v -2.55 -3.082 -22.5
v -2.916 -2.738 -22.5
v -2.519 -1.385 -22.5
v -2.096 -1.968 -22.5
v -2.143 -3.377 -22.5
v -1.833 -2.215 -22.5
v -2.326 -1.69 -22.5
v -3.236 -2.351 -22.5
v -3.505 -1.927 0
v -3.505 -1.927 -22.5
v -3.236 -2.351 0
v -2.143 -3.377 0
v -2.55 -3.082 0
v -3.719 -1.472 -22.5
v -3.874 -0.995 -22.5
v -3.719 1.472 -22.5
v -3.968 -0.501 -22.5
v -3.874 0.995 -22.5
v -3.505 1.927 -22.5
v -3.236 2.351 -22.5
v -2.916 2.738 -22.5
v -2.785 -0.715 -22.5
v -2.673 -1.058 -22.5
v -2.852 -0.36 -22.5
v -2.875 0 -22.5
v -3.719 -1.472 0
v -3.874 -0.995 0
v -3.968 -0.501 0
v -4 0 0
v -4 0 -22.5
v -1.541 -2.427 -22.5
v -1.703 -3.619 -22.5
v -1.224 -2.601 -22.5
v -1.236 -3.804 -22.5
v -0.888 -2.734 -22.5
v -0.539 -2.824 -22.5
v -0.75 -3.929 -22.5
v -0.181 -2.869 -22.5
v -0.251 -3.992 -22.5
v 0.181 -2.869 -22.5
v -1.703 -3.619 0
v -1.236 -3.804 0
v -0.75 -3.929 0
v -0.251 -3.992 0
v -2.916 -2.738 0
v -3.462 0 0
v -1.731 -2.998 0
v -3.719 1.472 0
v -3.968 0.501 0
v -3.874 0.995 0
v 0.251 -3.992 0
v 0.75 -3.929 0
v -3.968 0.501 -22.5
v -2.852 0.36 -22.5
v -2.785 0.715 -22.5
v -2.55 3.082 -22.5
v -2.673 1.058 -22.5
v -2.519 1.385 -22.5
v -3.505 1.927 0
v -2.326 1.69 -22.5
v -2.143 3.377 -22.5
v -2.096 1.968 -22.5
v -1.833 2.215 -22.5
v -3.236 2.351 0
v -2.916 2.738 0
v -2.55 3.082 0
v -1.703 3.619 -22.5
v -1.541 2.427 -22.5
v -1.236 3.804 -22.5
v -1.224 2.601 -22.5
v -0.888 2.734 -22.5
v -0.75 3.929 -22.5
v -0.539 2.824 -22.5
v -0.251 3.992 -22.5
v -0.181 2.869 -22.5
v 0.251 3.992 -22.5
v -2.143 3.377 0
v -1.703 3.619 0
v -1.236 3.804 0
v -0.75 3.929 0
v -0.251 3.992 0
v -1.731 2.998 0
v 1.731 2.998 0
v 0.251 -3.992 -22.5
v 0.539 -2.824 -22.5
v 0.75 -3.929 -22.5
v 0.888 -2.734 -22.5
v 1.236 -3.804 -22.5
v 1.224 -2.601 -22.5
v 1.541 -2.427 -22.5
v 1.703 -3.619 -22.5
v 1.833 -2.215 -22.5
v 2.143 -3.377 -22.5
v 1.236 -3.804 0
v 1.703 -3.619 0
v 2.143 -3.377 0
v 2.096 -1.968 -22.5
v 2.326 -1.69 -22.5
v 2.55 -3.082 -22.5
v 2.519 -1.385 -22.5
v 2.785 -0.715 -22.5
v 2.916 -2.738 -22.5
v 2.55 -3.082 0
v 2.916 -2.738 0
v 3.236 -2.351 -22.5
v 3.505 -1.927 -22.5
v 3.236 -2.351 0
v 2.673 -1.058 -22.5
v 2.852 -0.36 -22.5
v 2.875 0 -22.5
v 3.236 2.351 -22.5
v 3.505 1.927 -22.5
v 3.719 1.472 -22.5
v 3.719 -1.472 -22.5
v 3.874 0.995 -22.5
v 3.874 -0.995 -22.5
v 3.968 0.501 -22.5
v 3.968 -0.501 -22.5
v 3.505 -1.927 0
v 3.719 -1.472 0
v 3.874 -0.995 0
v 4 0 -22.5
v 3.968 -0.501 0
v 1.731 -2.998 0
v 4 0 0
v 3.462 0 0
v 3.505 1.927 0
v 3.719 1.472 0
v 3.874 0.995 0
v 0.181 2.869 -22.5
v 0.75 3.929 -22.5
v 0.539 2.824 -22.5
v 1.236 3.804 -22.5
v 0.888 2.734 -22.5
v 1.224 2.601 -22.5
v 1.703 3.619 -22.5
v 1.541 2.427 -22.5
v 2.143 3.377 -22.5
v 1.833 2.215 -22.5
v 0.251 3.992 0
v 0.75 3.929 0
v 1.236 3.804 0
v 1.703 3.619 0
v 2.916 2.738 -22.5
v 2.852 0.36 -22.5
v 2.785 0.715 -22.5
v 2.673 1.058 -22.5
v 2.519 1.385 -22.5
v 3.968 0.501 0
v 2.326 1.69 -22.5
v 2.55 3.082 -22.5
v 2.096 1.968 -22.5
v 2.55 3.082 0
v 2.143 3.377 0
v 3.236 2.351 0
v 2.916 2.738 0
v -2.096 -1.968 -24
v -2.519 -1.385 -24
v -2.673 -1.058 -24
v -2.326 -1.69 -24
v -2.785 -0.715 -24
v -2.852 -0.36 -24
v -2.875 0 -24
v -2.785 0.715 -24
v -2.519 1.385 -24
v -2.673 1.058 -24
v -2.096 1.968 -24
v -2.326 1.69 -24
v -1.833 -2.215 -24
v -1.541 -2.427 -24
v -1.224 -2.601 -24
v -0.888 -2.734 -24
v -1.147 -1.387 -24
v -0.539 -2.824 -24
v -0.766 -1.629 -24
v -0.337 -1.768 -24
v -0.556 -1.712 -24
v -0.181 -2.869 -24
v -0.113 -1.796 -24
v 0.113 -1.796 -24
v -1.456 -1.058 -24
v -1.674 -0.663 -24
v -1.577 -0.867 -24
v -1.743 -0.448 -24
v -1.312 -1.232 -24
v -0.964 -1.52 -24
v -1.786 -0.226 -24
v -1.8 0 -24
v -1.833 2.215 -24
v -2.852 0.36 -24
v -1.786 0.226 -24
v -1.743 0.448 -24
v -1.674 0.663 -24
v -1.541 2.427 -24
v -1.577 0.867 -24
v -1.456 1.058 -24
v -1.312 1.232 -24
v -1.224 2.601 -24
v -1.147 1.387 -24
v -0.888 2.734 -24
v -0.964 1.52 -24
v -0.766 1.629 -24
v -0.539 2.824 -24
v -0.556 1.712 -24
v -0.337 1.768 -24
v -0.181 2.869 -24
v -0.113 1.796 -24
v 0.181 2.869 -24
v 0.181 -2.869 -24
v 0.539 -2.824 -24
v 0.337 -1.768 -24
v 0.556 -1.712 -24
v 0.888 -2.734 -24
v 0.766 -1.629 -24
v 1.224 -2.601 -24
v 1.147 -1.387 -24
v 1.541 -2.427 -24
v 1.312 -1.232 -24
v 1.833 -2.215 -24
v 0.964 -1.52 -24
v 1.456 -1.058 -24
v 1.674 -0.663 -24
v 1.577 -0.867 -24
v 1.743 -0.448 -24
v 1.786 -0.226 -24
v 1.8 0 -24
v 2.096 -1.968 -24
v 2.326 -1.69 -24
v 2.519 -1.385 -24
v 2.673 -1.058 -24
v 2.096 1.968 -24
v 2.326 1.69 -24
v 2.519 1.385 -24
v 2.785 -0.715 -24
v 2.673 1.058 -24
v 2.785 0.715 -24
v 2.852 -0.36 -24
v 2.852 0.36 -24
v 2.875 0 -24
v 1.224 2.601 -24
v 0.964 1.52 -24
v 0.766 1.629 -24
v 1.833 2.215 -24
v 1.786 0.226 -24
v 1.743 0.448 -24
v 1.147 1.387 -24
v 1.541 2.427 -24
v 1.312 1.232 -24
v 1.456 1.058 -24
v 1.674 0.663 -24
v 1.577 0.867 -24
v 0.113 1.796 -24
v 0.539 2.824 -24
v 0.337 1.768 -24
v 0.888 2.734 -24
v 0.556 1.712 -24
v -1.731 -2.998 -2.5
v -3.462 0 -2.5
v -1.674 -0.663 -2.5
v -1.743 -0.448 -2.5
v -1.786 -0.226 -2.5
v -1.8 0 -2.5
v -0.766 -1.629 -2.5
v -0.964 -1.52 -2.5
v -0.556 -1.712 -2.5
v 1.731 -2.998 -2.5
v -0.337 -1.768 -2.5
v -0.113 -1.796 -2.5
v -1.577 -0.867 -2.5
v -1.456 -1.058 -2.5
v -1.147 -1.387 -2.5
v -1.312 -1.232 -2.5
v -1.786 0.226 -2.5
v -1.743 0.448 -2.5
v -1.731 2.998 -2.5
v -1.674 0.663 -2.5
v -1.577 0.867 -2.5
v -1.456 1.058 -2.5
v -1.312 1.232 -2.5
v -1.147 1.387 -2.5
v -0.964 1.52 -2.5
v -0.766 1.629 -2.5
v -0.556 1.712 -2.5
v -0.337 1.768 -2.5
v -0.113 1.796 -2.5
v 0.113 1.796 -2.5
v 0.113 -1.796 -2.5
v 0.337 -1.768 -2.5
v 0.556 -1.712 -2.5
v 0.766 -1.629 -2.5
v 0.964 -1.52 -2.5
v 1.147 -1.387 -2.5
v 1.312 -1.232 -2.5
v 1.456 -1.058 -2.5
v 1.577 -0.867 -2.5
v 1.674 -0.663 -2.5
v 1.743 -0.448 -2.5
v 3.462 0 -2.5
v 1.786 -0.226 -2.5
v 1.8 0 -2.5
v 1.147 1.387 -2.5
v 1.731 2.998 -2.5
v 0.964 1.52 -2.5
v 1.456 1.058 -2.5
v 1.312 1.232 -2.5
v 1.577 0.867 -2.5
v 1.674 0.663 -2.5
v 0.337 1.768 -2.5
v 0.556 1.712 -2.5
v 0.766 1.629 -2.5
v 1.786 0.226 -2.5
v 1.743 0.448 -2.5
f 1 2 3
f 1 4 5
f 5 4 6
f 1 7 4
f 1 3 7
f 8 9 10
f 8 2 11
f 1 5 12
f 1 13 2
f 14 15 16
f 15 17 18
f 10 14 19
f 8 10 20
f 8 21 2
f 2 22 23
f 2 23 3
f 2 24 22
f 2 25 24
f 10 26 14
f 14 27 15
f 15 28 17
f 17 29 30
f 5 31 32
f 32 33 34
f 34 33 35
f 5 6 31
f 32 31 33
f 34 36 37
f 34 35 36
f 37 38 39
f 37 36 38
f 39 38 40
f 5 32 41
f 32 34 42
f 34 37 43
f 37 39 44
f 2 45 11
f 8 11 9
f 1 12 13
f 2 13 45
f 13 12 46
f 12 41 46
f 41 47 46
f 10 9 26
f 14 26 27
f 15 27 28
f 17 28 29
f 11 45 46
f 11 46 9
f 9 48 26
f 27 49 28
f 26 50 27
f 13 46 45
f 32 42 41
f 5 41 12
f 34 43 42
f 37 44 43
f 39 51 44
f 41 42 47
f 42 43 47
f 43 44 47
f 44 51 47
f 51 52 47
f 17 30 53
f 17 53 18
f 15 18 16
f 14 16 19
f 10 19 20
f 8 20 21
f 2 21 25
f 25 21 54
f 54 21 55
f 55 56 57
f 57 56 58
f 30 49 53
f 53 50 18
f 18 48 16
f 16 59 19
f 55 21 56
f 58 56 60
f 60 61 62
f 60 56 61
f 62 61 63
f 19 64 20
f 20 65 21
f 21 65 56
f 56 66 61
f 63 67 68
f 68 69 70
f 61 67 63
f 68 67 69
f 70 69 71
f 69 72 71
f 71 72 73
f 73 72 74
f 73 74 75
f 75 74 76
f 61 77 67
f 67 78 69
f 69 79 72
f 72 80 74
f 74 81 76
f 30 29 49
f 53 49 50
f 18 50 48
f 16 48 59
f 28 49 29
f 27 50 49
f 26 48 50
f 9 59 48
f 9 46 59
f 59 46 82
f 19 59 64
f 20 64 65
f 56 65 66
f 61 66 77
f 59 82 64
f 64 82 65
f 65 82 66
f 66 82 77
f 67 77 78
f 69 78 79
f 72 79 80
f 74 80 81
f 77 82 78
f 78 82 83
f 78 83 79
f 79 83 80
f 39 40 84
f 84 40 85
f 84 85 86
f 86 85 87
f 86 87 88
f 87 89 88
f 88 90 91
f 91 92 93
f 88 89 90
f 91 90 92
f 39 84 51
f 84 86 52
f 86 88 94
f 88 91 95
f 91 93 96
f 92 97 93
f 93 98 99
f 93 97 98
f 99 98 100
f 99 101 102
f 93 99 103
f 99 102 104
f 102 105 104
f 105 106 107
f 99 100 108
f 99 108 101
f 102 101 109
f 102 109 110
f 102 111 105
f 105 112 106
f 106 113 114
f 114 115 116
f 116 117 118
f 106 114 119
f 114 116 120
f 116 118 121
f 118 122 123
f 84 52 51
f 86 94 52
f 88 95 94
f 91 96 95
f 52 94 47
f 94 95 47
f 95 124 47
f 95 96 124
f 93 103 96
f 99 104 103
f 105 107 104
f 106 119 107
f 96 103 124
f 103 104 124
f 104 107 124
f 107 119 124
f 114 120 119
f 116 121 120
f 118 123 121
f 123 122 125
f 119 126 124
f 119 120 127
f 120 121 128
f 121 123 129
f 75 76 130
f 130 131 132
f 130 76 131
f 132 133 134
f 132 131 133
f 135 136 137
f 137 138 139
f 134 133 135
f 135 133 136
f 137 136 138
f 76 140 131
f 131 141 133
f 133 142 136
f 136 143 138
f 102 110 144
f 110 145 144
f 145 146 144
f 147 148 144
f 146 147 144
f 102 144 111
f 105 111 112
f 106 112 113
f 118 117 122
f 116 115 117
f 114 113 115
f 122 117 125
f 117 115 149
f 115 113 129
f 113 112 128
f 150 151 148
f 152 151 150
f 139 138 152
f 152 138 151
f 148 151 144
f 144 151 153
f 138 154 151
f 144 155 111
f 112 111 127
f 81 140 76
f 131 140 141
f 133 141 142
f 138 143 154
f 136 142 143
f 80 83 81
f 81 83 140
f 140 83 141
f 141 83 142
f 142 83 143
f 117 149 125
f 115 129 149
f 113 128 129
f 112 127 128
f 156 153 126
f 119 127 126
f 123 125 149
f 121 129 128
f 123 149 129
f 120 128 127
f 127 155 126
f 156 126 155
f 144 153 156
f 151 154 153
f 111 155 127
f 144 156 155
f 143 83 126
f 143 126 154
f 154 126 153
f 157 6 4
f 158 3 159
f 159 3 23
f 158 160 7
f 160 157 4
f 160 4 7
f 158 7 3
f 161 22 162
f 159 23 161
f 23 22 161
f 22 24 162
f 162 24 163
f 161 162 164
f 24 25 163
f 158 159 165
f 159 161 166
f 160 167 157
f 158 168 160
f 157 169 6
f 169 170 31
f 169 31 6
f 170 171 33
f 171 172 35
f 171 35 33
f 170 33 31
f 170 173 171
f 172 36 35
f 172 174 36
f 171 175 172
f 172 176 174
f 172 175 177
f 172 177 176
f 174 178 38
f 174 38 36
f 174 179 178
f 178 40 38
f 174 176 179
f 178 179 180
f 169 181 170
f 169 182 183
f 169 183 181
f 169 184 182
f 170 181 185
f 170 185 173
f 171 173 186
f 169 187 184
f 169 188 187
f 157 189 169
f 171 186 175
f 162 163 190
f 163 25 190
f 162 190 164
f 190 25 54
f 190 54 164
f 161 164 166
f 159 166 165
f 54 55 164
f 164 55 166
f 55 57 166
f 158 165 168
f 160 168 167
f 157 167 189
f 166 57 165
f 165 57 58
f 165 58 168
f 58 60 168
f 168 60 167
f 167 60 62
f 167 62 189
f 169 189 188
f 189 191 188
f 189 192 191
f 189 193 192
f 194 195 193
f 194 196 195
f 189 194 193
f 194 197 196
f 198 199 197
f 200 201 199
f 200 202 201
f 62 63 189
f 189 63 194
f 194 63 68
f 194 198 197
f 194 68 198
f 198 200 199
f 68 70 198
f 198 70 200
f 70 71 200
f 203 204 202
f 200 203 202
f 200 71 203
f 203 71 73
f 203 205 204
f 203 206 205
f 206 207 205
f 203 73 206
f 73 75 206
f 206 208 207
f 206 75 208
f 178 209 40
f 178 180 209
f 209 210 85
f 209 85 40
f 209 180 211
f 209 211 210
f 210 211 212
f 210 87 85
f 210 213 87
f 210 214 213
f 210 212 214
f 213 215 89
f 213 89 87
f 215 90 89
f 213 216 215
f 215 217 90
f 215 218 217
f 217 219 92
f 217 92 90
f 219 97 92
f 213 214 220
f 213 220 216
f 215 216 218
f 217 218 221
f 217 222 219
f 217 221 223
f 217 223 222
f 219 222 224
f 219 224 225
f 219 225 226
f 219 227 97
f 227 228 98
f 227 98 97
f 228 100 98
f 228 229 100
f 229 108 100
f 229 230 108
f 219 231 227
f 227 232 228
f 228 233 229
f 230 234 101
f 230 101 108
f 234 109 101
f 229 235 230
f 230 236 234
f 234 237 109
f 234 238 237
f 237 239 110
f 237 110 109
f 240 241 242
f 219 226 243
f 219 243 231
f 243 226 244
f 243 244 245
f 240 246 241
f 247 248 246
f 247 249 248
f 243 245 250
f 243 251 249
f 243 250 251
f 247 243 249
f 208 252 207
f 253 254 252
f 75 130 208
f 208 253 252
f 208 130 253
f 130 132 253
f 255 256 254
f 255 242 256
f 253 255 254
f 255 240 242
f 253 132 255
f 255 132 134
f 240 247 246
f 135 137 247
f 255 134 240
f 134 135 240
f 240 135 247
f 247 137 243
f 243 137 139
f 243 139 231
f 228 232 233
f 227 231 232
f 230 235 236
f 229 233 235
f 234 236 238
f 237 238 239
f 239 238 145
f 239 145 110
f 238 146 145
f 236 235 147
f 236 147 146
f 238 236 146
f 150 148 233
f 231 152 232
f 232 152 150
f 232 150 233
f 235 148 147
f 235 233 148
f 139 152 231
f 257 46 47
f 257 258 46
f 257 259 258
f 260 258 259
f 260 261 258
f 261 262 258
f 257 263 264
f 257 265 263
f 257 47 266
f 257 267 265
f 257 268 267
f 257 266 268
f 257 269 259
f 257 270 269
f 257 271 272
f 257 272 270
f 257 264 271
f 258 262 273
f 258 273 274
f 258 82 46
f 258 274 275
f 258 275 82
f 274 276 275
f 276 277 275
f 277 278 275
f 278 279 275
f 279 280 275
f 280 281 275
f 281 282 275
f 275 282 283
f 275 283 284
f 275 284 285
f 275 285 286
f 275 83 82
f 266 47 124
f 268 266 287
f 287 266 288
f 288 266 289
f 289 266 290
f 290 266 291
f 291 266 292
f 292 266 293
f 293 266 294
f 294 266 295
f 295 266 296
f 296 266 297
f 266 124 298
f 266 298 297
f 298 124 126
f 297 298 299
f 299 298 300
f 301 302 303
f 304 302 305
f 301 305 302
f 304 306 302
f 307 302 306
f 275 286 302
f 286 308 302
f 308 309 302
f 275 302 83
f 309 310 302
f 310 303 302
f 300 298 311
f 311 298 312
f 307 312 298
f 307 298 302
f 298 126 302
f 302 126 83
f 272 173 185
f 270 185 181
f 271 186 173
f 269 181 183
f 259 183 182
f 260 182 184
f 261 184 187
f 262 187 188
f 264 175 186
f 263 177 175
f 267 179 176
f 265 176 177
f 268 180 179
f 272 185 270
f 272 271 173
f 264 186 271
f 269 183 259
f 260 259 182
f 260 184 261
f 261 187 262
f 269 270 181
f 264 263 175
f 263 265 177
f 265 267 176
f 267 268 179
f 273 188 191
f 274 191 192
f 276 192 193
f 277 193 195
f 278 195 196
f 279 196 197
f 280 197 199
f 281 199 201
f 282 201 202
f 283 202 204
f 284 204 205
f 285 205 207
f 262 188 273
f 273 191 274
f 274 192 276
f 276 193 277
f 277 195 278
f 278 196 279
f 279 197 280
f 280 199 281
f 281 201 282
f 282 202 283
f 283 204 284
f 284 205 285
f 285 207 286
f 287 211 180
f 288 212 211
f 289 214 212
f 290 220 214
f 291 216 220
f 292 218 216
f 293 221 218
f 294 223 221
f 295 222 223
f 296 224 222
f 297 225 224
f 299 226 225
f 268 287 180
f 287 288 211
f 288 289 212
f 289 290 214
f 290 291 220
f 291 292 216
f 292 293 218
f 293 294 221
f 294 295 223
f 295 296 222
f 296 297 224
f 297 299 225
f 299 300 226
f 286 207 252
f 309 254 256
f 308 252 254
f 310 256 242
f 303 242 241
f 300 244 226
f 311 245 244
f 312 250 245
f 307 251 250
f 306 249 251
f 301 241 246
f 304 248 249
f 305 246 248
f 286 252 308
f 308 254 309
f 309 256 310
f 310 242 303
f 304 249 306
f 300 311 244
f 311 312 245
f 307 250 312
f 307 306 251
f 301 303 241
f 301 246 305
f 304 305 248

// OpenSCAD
$fn = 50;

difference() {
	union() {
		translate(v = [0, 0, -22.5]) {
			cylinder(h = 25.5, r = 4.0);
		}
		#translate(v = [0, 0, -24.0]) {
			cylinder(h = 24, r = 2.875);
		}
	}
	union() {
		translate(v = [0, 0, 0]) {
			rotate(a = [0, 0, 0]) {
				difference() {
					union() {
						translate(v = [0, 0, -2.5]) {
							linear_extrude(height = 2.5) {
								polygon(points = [[3.4619999999999997, 0.0], [1.7310000000000003, 2.9981799479017264], [-1.7309999999999992, 2.9981799479017264], [-3.4619999999999997, 4.2397272186481365e-16], [-1.7310000000000014, -2.998179947901726], [1.7309999999999977, -2.9981799479017277]]);
							}
						}
					}
					union();
				}
			}
		}
		#cylinder(h = 3, r = 5.0);
		#translate(v = [0, 0, -100.0]) {
			cylinder(h = 200, r = 1.8);
		}
	}
}
